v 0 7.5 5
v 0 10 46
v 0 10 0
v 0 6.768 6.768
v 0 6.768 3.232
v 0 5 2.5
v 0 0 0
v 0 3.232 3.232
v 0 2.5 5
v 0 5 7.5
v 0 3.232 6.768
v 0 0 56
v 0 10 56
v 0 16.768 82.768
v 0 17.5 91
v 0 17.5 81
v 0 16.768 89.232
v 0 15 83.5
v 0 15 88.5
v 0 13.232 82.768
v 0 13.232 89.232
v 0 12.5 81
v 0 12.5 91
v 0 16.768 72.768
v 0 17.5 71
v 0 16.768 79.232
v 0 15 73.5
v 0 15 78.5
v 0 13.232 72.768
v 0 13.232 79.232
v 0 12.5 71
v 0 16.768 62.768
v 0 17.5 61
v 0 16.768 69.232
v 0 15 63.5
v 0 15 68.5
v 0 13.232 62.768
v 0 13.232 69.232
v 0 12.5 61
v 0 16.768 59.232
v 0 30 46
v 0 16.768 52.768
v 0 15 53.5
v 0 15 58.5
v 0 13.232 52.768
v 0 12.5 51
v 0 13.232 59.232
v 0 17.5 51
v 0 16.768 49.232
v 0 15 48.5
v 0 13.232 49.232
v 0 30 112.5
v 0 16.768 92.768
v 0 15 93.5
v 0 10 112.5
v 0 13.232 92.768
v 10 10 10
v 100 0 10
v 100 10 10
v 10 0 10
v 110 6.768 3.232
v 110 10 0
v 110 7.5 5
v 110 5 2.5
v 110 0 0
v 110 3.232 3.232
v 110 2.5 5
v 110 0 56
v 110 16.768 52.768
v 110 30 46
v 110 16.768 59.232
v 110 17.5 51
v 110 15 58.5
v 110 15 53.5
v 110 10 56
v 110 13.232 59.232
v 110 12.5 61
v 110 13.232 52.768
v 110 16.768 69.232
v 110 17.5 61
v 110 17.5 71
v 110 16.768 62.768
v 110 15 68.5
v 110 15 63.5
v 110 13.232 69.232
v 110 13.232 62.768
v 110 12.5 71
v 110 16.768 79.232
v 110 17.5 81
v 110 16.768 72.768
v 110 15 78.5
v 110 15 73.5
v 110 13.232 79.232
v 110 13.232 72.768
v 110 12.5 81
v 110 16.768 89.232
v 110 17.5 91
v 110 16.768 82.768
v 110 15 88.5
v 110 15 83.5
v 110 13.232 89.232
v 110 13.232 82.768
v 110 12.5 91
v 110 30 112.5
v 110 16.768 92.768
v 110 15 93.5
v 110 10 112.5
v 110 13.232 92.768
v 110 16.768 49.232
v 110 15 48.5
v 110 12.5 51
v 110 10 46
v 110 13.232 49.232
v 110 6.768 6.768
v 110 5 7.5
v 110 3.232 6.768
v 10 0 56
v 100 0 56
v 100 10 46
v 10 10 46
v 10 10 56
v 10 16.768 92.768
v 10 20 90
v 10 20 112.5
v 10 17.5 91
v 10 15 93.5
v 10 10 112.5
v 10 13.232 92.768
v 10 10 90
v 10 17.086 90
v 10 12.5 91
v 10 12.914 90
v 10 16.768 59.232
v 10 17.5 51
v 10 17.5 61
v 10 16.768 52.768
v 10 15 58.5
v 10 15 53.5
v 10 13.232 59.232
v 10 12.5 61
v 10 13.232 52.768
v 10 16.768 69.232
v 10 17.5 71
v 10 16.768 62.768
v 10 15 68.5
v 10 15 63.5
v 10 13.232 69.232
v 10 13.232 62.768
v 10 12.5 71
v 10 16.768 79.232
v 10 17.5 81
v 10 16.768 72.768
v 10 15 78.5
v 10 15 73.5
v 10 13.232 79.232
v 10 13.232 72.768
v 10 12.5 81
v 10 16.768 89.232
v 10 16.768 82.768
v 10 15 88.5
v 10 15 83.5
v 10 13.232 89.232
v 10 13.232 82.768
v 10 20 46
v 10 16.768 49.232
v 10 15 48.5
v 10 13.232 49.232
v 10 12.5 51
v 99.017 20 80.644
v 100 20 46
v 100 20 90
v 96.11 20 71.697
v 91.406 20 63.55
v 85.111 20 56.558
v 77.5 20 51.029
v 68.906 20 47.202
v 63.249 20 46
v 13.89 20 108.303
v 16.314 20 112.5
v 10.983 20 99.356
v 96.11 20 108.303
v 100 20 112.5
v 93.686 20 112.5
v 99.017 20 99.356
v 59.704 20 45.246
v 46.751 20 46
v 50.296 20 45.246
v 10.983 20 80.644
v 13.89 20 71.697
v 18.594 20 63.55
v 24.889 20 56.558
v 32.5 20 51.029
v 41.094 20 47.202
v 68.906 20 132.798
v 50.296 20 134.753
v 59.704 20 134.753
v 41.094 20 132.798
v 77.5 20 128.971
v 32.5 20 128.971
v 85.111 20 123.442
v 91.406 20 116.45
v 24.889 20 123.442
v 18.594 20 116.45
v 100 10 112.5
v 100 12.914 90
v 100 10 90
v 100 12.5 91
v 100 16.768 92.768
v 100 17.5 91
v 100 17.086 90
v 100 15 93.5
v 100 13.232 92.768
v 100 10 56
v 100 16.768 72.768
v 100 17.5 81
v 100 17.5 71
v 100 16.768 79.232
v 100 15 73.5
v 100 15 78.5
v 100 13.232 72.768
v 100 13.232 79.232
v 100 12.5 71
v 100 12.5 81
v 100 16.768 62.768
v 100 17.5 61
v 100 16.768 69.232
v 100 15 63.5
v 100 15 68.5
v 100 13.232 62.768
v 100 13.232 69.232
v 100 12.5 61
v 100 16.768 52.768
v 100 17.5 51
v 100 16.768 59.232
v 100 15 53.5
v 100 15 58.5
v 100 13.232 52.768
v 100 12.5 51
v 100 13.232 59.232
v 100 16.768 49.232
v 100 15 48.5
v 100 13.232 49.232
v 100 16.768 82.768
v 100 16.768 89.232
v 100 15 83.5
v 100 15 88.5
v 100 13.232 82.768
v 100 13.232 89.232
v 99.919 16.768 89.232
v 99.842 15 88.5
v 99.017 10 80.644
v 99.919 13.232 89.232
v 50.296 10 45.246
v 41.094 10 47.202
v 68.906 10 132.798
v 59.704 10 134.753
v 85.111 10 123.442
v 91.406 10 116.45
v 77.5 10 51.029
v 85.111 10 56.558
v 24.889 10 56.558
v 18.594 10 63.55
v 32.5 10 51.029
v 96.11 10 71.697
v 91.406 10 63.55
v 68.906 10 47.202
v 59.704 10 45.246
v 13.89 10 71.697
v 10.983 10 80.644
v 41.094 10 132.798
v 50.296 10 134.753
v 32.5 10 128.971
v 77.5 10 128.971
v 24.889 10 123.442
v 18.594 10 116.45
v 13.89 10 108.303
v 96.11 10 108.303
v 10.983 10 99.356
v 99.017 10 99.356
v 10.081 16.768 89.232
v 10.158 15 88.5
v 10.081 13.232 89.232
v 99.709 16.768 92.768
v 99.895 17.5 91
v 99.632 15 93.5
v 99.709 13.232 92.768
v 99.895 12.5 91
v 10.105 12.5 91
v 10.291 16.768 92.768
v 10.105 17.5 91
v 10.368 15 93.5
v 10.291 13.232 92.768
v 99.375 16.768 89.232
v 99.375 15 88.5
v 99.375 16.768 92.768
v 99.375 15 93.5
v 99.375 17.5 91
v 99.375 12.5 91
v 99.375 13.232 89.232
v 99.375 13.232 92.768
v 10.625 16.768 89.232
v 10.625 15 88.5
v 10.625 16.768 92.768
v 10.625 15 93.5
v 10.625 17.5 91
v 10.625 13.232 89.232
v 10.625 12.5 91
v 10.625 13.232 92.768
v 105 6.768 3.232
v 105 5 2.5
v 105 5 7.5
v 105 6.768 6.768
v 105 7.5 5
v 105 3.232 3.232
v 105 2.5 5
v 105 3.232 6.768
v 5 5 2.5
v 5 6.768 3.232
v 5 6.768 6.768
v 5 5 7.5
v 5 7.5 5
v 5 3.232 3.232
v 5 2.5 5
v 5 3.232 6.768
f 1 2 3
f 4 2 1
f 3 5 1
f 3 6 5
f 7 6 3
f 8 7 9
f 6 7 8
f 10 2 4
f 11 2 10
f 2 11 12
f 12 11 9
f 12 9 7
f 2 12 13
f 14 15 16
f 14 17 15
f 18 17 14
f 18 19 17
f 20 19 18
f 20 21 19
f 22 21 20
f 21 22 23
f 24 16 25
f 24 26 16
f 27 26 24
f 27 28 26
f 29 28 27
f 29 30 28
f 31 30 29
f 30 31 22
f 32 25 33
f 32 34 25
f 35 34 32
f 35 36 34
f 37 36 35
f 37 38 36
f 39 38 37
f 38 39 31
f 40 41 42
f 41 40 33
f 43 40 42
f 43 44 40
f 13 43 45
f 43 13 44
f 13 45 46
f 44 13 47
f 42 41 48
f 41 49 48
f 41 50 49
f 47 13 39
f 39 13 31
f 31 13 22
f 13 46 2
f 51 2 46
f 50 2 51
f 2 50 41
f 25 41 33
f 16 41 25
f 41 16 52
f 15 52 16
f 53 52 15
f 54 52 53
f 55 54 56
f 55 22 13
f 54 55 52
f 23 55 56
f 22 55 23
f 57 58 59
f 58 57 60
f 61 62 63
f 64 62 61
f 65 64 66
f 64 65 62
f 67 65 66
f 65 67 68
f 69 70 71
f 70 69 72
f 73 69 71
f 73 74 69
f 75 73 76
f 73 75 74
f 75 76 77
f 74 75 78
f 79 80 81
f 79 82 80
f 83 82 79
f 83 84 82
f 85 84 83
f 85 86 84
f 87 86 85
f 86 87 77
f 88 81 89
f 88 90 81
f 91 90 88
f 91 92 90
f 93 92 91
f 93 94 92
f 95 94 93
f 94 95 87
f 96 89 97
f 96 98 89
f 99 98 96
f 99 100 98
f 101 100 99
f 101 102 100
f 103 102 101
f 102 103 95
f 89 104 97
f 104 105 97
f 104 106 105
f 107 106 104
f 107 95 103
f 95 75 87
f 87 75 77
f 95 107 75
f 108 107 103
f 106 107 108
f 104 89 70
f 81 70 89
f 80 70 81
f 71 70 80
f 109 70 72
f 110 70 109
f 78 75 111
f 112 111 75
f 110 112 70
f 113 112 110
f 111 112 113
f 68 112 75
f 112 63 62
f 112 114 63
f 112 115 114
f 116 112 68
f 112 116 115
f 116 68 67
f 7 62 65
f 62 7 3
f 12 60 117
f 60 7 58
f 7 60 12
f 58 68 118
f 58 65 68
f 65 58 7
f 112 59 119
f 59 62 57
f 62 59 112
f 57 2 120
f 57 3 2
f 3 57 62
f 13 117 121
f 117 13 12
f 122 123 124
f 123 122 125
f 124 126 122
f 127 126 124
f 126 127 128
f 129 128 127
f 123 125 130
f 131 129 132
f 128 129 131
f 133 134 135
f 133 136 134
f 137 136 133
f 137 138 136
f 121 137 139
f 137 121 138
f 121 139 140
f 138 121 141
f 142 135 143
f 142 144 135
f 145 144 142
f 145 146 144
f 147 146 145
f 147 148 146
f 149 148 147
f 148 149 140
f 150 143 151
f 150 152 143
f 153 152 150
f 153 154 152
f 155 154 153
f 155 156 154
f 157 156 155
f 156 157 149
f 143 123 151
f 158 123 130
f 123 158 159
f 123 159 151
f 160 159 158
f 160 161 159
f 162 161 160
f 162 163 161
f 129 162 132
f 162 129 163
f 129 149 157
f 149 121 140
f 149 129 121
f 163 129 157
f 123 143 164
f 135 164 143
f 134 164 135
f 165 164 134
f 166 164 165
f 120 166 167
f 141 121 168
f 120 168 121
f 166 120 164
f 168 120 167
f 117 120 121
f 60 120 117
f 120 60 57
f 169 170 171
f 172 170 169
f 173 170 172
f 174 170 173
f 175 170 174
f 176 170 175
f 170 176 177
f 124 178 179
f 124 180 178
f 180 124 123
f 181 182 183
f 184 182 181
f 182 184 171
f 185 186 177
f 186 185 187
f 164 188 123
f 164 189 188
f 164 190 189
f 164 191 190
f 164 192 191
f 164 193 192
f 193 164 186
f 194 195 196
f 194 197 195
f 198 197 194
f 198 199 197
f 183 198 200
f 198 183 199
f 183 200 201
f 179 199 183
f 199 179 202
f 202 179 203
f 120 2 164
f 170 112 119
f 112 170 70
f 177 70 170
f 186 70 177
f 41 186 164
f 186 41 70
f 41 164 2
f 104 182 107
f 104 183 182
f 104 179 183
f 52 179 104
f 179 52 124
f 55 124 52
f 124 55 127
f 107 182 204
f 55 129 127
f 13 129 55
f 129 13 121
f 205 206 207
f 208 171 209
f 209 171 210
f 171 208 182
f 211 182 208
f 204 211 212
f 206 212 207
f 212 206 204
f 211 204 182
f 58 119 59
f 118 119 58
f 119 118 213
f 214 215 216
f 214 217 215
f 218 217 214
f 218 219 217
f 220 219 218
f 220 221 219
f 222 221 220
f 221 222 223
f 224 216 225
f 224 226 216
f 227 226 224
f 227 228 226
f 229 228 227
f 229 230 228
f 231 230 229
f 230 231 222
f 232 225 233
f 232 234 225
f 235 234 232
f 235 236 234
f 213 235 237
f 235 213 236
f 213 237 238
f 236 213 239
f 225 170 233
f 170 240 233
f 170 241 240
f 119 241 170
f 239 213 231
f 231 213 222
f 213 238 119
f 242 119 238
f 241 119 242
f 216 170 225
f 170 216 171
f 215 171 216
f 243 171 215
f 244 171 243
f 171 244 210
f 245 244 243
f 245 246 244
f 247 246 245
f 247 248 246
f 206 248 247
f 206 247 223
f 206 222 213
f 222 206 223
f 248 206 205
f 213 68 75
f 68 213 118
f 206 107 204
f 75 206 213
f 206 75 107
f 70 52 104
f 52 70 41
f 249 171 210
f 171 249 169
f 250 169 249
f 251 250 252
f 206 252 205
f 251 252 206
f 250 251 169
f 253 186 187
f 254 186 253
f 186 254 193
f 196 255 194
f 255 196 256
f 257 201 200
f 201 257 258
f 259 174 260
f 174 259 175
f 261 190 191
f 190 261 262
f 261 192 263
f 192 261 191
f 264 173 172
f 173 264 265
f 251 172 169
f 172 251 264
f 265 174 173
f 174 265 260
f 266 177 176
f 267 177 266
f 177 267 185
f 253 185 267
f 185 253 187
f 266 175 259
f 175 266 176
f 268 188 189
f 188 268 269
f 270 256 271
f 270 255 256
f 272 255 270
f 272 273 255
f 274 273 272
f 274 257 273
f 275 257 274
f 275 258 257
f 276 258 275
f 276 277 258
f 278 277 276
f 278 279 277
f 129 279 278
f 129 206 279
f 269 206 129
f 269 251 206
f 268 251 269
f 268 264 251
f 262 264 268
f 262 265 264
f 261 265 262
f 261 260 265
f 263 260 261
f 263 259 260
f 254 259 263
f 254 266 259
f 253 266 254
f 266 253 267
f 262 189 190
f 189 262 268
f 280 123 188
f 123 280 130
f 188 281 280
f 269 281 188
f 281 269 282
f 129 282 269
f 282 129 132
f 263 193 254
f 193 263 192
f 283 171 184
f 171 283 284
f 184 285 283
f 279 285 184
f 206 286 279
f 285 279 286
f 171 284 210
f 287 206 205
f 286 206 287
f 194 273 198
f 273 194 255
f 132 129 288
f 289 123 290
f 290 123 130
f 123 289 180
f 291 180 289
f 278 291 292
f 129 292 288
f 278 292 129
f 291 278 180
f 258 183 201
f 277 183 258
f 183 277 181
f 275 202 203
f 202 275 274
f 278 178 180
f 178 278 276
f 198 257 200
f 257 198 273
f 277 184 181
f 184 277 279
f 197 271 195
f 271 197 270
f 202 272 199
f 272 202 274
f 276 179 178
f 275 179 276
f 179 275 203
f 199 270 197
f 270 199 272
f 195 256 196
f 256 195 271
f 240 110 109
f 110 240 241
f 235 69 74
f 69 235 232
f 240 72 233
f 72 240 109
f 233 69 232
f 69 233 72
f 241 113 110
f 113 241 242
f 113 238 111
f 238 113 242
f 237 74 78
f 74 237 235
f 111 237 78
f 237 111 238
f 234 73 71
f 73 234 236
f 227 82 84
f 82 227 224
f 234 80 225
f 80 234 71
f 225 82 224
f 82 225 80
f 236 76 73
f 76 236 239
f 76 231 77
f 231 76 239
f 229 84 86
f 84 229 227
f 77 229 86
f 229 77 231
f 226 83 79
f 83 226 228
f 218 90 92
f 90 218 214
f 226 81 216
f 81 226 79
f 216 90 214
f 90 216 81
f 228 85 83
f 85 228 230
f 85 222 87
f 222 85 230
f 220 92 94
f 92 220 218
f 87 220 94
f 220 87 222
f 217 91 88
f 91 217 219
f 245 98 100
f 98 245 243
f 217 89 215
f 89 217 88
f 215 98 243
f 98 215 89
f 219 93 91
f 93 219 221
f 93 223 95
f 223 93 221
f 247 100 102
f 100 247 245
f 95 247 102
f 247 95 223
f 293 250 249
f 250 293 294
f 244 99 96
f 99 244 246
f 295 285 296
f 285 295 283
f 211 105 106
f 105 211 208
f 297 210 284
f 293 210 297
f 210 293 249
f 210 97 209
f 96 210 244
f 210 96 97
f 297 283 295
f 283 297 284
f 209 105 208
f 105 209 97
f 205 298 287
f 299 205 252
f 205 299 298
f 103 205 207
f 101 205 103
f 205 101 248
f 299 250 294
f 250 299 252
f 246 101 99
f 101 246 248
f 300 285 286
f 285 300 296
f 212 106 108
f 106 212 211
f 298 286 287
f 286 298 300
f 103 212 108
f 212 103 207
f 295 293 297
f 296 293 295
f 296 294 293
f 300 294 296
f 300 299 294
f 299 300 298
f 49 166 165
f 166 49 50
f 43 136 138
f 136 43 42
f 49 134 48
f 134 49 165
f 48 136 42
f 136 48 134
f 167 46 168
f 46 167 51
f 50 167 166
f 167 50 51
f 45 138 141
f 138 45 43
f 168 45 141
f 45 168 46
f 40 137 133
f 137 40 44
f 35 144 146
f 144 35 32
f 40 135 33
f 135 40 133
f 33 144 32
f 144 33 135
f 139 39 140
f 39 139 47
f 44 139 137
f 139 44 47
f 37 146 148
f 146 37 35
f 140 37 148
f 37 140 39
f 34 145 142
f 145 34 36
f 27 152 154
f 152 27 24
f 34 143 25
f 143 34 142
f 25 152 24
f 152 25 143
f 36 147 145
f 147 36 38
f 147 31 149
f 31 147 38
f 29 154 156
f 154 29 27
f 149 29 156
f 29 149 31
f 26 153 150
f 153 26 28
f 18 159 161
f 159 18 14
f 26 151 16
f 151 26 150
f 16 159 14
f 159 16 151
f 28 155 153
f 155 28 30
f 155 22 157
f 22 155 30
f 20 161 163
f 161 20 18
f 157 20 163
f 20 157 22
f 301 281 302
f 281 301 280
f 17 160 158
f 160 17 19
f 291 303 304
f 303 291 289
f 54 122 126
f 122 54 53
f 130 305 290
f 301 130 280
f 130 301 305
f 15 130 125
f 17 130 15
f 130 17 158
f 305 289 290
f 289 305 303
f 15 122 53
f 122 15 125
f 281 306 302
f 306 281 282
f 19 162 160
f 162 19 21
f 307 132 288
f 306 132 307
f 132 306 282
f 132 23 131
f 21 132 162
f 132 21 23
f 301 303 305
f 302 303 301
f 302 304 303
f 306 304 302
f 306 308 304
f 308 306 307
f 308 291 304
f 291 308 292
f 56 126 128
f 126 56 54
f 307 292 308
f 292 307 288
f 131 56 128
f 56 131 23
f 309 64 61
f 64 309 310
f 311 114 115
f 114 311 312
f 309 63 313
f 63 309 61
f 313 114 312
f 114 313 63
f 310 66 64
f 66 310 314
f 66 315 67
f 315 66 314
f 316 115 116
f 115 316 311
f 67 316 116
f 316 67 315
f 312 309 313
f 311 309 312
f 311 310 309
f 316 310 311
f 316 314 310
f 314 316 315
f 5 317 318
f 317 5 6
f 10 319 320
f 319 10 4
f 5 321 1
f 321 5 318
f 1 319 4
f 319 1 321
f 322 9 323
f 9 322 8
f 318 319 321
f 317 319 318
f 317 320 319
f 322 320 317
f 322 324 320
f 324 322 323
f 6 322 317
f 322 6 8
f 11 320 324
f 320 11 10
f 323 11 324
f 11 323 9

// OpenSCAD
difference(){
    union(){
        cube(size=[110.0, 10.0, 10.0]);
        cube(size=[10.0, 10.0, 56.0]);
        translate(v=[0, 0, 46.0]){
            cube(size=[10.0, 20.0, 10.0]);
        };
        translate(v=[0, 10.0, 56.0]){
            cube(size=[10.0, 10.0, 56.5]);
        };
        translate(v=[100.0, 0, 0]){
            cube(size=[10.0, 10.0, 56.0]);
        };
        translate(v=[100.0, 0, 46.0]){
            cube(size=[10.0, 20.0, 10.0]);
        };
        translate(v=[100.0, 10.0, 56.0]){
            cube(size=[10.0, 10.0, 56.5]);
        };
        translate(v=[0, 20.0, 46.0]){
            cube(size=[110.0, 10.0, 66.5]);
        };
        translate(v=[55.0, 10.0, 90.0]){
            rotate(a=[-90, 0, 0]){
                cylinder(h=10.0, r=45.0);
            };
        };
    };
    union(){
        translate(v=[-0.625, 15.0, 51.0]){
            rotate(a=[0, 90, 0]){
                cylinder(h=11.25, r=2.5);
            };
        };
        translate(v=[0, 0, 10.0]){
            translate(v=[-0.625, 15.0, 51.0]){
                rotate(a=[0, 90, 0]){
                    cylinder(h=11.25, r=2.5);
                };
            };
        };
        translate(v=[0, 0, 20.0]){
            translate(v=[-0.625, 15.0, 51.0]){
                rotate(a=[0, 90, 0]){
                    cylinder(h=11.25, r=2.5);
                };
            };
        };
        translate(v=[0, 0, 30.0]){
            translate(v=[-0.625, 15.0, 51.0]){
                rotate(a=[0, 90, 0]){
                    cylinder(h=11.25, r=2.5);
                };
            };
        };
        translate(v=[0, 0, 40.0]){
            translate(v=[-0.625, 15.0, 51.0]){
                rotate(a=[0, 90, 0]){
                    cylinder(h=11.25, r=2.5);
                };
            };
        };
        translate(v=[100.0, 0, 0]){
            union(){
                translate(v=[-0.625, 15.0, 51.0]){
                    rotate(a=[0, 90, 0]){
                        cylinder(h=11.25, r=2.5);
                    };
                };
                translate(v=[0, 0, 10.0]){
                    translate(v=[-0.625, 15.0, 51.0]){
                        rotate(a=[0, 90, 0]){
                            cylinder(h=11.25, r=2.5);
                        };
                    };
                };
                translate(v=[0, 0, 20.0]){
                    translate(v=[-0.625, 15.0, 51.0]){
                        rotate(a=[0, 90, 0]){
                            cylinder(h=11.25, r=2.5);
                        };
                    };
                };
                translate(v=[0, 0, 30.0]){
                    translate(v=[-0.625, 15.0, 51.0]){
                        rotate(a=[0, 90, 0]){
                            cylinder(h=11.25, r=2.5);
                        };
                    };
                };
                translate(v=[0, 0, 40.0]){
                    translate(v=[-0.625, 15.0, 51.0]){
                        rotate(a=[0, 90, 0]){
                            cylinder(h=11.25, r=2.5);
                        };
                    };
                };
            };
        };
    };
    union(){
        translate(v=[110.0, 0, 0]){
            translate(v=[-5.0, 5.0, 5.0]){
                rotate(a=[0, 90, 0]){
                    cylinder(h=10.0, r=2.5);
                };
            };
        };
        translate(v=[-5.0, 5.0, 5.0]){
            rotate(a=[0, 90, 0]){
                cylinder(h=10.0, r=2.5);
            };
        };
    };
};
